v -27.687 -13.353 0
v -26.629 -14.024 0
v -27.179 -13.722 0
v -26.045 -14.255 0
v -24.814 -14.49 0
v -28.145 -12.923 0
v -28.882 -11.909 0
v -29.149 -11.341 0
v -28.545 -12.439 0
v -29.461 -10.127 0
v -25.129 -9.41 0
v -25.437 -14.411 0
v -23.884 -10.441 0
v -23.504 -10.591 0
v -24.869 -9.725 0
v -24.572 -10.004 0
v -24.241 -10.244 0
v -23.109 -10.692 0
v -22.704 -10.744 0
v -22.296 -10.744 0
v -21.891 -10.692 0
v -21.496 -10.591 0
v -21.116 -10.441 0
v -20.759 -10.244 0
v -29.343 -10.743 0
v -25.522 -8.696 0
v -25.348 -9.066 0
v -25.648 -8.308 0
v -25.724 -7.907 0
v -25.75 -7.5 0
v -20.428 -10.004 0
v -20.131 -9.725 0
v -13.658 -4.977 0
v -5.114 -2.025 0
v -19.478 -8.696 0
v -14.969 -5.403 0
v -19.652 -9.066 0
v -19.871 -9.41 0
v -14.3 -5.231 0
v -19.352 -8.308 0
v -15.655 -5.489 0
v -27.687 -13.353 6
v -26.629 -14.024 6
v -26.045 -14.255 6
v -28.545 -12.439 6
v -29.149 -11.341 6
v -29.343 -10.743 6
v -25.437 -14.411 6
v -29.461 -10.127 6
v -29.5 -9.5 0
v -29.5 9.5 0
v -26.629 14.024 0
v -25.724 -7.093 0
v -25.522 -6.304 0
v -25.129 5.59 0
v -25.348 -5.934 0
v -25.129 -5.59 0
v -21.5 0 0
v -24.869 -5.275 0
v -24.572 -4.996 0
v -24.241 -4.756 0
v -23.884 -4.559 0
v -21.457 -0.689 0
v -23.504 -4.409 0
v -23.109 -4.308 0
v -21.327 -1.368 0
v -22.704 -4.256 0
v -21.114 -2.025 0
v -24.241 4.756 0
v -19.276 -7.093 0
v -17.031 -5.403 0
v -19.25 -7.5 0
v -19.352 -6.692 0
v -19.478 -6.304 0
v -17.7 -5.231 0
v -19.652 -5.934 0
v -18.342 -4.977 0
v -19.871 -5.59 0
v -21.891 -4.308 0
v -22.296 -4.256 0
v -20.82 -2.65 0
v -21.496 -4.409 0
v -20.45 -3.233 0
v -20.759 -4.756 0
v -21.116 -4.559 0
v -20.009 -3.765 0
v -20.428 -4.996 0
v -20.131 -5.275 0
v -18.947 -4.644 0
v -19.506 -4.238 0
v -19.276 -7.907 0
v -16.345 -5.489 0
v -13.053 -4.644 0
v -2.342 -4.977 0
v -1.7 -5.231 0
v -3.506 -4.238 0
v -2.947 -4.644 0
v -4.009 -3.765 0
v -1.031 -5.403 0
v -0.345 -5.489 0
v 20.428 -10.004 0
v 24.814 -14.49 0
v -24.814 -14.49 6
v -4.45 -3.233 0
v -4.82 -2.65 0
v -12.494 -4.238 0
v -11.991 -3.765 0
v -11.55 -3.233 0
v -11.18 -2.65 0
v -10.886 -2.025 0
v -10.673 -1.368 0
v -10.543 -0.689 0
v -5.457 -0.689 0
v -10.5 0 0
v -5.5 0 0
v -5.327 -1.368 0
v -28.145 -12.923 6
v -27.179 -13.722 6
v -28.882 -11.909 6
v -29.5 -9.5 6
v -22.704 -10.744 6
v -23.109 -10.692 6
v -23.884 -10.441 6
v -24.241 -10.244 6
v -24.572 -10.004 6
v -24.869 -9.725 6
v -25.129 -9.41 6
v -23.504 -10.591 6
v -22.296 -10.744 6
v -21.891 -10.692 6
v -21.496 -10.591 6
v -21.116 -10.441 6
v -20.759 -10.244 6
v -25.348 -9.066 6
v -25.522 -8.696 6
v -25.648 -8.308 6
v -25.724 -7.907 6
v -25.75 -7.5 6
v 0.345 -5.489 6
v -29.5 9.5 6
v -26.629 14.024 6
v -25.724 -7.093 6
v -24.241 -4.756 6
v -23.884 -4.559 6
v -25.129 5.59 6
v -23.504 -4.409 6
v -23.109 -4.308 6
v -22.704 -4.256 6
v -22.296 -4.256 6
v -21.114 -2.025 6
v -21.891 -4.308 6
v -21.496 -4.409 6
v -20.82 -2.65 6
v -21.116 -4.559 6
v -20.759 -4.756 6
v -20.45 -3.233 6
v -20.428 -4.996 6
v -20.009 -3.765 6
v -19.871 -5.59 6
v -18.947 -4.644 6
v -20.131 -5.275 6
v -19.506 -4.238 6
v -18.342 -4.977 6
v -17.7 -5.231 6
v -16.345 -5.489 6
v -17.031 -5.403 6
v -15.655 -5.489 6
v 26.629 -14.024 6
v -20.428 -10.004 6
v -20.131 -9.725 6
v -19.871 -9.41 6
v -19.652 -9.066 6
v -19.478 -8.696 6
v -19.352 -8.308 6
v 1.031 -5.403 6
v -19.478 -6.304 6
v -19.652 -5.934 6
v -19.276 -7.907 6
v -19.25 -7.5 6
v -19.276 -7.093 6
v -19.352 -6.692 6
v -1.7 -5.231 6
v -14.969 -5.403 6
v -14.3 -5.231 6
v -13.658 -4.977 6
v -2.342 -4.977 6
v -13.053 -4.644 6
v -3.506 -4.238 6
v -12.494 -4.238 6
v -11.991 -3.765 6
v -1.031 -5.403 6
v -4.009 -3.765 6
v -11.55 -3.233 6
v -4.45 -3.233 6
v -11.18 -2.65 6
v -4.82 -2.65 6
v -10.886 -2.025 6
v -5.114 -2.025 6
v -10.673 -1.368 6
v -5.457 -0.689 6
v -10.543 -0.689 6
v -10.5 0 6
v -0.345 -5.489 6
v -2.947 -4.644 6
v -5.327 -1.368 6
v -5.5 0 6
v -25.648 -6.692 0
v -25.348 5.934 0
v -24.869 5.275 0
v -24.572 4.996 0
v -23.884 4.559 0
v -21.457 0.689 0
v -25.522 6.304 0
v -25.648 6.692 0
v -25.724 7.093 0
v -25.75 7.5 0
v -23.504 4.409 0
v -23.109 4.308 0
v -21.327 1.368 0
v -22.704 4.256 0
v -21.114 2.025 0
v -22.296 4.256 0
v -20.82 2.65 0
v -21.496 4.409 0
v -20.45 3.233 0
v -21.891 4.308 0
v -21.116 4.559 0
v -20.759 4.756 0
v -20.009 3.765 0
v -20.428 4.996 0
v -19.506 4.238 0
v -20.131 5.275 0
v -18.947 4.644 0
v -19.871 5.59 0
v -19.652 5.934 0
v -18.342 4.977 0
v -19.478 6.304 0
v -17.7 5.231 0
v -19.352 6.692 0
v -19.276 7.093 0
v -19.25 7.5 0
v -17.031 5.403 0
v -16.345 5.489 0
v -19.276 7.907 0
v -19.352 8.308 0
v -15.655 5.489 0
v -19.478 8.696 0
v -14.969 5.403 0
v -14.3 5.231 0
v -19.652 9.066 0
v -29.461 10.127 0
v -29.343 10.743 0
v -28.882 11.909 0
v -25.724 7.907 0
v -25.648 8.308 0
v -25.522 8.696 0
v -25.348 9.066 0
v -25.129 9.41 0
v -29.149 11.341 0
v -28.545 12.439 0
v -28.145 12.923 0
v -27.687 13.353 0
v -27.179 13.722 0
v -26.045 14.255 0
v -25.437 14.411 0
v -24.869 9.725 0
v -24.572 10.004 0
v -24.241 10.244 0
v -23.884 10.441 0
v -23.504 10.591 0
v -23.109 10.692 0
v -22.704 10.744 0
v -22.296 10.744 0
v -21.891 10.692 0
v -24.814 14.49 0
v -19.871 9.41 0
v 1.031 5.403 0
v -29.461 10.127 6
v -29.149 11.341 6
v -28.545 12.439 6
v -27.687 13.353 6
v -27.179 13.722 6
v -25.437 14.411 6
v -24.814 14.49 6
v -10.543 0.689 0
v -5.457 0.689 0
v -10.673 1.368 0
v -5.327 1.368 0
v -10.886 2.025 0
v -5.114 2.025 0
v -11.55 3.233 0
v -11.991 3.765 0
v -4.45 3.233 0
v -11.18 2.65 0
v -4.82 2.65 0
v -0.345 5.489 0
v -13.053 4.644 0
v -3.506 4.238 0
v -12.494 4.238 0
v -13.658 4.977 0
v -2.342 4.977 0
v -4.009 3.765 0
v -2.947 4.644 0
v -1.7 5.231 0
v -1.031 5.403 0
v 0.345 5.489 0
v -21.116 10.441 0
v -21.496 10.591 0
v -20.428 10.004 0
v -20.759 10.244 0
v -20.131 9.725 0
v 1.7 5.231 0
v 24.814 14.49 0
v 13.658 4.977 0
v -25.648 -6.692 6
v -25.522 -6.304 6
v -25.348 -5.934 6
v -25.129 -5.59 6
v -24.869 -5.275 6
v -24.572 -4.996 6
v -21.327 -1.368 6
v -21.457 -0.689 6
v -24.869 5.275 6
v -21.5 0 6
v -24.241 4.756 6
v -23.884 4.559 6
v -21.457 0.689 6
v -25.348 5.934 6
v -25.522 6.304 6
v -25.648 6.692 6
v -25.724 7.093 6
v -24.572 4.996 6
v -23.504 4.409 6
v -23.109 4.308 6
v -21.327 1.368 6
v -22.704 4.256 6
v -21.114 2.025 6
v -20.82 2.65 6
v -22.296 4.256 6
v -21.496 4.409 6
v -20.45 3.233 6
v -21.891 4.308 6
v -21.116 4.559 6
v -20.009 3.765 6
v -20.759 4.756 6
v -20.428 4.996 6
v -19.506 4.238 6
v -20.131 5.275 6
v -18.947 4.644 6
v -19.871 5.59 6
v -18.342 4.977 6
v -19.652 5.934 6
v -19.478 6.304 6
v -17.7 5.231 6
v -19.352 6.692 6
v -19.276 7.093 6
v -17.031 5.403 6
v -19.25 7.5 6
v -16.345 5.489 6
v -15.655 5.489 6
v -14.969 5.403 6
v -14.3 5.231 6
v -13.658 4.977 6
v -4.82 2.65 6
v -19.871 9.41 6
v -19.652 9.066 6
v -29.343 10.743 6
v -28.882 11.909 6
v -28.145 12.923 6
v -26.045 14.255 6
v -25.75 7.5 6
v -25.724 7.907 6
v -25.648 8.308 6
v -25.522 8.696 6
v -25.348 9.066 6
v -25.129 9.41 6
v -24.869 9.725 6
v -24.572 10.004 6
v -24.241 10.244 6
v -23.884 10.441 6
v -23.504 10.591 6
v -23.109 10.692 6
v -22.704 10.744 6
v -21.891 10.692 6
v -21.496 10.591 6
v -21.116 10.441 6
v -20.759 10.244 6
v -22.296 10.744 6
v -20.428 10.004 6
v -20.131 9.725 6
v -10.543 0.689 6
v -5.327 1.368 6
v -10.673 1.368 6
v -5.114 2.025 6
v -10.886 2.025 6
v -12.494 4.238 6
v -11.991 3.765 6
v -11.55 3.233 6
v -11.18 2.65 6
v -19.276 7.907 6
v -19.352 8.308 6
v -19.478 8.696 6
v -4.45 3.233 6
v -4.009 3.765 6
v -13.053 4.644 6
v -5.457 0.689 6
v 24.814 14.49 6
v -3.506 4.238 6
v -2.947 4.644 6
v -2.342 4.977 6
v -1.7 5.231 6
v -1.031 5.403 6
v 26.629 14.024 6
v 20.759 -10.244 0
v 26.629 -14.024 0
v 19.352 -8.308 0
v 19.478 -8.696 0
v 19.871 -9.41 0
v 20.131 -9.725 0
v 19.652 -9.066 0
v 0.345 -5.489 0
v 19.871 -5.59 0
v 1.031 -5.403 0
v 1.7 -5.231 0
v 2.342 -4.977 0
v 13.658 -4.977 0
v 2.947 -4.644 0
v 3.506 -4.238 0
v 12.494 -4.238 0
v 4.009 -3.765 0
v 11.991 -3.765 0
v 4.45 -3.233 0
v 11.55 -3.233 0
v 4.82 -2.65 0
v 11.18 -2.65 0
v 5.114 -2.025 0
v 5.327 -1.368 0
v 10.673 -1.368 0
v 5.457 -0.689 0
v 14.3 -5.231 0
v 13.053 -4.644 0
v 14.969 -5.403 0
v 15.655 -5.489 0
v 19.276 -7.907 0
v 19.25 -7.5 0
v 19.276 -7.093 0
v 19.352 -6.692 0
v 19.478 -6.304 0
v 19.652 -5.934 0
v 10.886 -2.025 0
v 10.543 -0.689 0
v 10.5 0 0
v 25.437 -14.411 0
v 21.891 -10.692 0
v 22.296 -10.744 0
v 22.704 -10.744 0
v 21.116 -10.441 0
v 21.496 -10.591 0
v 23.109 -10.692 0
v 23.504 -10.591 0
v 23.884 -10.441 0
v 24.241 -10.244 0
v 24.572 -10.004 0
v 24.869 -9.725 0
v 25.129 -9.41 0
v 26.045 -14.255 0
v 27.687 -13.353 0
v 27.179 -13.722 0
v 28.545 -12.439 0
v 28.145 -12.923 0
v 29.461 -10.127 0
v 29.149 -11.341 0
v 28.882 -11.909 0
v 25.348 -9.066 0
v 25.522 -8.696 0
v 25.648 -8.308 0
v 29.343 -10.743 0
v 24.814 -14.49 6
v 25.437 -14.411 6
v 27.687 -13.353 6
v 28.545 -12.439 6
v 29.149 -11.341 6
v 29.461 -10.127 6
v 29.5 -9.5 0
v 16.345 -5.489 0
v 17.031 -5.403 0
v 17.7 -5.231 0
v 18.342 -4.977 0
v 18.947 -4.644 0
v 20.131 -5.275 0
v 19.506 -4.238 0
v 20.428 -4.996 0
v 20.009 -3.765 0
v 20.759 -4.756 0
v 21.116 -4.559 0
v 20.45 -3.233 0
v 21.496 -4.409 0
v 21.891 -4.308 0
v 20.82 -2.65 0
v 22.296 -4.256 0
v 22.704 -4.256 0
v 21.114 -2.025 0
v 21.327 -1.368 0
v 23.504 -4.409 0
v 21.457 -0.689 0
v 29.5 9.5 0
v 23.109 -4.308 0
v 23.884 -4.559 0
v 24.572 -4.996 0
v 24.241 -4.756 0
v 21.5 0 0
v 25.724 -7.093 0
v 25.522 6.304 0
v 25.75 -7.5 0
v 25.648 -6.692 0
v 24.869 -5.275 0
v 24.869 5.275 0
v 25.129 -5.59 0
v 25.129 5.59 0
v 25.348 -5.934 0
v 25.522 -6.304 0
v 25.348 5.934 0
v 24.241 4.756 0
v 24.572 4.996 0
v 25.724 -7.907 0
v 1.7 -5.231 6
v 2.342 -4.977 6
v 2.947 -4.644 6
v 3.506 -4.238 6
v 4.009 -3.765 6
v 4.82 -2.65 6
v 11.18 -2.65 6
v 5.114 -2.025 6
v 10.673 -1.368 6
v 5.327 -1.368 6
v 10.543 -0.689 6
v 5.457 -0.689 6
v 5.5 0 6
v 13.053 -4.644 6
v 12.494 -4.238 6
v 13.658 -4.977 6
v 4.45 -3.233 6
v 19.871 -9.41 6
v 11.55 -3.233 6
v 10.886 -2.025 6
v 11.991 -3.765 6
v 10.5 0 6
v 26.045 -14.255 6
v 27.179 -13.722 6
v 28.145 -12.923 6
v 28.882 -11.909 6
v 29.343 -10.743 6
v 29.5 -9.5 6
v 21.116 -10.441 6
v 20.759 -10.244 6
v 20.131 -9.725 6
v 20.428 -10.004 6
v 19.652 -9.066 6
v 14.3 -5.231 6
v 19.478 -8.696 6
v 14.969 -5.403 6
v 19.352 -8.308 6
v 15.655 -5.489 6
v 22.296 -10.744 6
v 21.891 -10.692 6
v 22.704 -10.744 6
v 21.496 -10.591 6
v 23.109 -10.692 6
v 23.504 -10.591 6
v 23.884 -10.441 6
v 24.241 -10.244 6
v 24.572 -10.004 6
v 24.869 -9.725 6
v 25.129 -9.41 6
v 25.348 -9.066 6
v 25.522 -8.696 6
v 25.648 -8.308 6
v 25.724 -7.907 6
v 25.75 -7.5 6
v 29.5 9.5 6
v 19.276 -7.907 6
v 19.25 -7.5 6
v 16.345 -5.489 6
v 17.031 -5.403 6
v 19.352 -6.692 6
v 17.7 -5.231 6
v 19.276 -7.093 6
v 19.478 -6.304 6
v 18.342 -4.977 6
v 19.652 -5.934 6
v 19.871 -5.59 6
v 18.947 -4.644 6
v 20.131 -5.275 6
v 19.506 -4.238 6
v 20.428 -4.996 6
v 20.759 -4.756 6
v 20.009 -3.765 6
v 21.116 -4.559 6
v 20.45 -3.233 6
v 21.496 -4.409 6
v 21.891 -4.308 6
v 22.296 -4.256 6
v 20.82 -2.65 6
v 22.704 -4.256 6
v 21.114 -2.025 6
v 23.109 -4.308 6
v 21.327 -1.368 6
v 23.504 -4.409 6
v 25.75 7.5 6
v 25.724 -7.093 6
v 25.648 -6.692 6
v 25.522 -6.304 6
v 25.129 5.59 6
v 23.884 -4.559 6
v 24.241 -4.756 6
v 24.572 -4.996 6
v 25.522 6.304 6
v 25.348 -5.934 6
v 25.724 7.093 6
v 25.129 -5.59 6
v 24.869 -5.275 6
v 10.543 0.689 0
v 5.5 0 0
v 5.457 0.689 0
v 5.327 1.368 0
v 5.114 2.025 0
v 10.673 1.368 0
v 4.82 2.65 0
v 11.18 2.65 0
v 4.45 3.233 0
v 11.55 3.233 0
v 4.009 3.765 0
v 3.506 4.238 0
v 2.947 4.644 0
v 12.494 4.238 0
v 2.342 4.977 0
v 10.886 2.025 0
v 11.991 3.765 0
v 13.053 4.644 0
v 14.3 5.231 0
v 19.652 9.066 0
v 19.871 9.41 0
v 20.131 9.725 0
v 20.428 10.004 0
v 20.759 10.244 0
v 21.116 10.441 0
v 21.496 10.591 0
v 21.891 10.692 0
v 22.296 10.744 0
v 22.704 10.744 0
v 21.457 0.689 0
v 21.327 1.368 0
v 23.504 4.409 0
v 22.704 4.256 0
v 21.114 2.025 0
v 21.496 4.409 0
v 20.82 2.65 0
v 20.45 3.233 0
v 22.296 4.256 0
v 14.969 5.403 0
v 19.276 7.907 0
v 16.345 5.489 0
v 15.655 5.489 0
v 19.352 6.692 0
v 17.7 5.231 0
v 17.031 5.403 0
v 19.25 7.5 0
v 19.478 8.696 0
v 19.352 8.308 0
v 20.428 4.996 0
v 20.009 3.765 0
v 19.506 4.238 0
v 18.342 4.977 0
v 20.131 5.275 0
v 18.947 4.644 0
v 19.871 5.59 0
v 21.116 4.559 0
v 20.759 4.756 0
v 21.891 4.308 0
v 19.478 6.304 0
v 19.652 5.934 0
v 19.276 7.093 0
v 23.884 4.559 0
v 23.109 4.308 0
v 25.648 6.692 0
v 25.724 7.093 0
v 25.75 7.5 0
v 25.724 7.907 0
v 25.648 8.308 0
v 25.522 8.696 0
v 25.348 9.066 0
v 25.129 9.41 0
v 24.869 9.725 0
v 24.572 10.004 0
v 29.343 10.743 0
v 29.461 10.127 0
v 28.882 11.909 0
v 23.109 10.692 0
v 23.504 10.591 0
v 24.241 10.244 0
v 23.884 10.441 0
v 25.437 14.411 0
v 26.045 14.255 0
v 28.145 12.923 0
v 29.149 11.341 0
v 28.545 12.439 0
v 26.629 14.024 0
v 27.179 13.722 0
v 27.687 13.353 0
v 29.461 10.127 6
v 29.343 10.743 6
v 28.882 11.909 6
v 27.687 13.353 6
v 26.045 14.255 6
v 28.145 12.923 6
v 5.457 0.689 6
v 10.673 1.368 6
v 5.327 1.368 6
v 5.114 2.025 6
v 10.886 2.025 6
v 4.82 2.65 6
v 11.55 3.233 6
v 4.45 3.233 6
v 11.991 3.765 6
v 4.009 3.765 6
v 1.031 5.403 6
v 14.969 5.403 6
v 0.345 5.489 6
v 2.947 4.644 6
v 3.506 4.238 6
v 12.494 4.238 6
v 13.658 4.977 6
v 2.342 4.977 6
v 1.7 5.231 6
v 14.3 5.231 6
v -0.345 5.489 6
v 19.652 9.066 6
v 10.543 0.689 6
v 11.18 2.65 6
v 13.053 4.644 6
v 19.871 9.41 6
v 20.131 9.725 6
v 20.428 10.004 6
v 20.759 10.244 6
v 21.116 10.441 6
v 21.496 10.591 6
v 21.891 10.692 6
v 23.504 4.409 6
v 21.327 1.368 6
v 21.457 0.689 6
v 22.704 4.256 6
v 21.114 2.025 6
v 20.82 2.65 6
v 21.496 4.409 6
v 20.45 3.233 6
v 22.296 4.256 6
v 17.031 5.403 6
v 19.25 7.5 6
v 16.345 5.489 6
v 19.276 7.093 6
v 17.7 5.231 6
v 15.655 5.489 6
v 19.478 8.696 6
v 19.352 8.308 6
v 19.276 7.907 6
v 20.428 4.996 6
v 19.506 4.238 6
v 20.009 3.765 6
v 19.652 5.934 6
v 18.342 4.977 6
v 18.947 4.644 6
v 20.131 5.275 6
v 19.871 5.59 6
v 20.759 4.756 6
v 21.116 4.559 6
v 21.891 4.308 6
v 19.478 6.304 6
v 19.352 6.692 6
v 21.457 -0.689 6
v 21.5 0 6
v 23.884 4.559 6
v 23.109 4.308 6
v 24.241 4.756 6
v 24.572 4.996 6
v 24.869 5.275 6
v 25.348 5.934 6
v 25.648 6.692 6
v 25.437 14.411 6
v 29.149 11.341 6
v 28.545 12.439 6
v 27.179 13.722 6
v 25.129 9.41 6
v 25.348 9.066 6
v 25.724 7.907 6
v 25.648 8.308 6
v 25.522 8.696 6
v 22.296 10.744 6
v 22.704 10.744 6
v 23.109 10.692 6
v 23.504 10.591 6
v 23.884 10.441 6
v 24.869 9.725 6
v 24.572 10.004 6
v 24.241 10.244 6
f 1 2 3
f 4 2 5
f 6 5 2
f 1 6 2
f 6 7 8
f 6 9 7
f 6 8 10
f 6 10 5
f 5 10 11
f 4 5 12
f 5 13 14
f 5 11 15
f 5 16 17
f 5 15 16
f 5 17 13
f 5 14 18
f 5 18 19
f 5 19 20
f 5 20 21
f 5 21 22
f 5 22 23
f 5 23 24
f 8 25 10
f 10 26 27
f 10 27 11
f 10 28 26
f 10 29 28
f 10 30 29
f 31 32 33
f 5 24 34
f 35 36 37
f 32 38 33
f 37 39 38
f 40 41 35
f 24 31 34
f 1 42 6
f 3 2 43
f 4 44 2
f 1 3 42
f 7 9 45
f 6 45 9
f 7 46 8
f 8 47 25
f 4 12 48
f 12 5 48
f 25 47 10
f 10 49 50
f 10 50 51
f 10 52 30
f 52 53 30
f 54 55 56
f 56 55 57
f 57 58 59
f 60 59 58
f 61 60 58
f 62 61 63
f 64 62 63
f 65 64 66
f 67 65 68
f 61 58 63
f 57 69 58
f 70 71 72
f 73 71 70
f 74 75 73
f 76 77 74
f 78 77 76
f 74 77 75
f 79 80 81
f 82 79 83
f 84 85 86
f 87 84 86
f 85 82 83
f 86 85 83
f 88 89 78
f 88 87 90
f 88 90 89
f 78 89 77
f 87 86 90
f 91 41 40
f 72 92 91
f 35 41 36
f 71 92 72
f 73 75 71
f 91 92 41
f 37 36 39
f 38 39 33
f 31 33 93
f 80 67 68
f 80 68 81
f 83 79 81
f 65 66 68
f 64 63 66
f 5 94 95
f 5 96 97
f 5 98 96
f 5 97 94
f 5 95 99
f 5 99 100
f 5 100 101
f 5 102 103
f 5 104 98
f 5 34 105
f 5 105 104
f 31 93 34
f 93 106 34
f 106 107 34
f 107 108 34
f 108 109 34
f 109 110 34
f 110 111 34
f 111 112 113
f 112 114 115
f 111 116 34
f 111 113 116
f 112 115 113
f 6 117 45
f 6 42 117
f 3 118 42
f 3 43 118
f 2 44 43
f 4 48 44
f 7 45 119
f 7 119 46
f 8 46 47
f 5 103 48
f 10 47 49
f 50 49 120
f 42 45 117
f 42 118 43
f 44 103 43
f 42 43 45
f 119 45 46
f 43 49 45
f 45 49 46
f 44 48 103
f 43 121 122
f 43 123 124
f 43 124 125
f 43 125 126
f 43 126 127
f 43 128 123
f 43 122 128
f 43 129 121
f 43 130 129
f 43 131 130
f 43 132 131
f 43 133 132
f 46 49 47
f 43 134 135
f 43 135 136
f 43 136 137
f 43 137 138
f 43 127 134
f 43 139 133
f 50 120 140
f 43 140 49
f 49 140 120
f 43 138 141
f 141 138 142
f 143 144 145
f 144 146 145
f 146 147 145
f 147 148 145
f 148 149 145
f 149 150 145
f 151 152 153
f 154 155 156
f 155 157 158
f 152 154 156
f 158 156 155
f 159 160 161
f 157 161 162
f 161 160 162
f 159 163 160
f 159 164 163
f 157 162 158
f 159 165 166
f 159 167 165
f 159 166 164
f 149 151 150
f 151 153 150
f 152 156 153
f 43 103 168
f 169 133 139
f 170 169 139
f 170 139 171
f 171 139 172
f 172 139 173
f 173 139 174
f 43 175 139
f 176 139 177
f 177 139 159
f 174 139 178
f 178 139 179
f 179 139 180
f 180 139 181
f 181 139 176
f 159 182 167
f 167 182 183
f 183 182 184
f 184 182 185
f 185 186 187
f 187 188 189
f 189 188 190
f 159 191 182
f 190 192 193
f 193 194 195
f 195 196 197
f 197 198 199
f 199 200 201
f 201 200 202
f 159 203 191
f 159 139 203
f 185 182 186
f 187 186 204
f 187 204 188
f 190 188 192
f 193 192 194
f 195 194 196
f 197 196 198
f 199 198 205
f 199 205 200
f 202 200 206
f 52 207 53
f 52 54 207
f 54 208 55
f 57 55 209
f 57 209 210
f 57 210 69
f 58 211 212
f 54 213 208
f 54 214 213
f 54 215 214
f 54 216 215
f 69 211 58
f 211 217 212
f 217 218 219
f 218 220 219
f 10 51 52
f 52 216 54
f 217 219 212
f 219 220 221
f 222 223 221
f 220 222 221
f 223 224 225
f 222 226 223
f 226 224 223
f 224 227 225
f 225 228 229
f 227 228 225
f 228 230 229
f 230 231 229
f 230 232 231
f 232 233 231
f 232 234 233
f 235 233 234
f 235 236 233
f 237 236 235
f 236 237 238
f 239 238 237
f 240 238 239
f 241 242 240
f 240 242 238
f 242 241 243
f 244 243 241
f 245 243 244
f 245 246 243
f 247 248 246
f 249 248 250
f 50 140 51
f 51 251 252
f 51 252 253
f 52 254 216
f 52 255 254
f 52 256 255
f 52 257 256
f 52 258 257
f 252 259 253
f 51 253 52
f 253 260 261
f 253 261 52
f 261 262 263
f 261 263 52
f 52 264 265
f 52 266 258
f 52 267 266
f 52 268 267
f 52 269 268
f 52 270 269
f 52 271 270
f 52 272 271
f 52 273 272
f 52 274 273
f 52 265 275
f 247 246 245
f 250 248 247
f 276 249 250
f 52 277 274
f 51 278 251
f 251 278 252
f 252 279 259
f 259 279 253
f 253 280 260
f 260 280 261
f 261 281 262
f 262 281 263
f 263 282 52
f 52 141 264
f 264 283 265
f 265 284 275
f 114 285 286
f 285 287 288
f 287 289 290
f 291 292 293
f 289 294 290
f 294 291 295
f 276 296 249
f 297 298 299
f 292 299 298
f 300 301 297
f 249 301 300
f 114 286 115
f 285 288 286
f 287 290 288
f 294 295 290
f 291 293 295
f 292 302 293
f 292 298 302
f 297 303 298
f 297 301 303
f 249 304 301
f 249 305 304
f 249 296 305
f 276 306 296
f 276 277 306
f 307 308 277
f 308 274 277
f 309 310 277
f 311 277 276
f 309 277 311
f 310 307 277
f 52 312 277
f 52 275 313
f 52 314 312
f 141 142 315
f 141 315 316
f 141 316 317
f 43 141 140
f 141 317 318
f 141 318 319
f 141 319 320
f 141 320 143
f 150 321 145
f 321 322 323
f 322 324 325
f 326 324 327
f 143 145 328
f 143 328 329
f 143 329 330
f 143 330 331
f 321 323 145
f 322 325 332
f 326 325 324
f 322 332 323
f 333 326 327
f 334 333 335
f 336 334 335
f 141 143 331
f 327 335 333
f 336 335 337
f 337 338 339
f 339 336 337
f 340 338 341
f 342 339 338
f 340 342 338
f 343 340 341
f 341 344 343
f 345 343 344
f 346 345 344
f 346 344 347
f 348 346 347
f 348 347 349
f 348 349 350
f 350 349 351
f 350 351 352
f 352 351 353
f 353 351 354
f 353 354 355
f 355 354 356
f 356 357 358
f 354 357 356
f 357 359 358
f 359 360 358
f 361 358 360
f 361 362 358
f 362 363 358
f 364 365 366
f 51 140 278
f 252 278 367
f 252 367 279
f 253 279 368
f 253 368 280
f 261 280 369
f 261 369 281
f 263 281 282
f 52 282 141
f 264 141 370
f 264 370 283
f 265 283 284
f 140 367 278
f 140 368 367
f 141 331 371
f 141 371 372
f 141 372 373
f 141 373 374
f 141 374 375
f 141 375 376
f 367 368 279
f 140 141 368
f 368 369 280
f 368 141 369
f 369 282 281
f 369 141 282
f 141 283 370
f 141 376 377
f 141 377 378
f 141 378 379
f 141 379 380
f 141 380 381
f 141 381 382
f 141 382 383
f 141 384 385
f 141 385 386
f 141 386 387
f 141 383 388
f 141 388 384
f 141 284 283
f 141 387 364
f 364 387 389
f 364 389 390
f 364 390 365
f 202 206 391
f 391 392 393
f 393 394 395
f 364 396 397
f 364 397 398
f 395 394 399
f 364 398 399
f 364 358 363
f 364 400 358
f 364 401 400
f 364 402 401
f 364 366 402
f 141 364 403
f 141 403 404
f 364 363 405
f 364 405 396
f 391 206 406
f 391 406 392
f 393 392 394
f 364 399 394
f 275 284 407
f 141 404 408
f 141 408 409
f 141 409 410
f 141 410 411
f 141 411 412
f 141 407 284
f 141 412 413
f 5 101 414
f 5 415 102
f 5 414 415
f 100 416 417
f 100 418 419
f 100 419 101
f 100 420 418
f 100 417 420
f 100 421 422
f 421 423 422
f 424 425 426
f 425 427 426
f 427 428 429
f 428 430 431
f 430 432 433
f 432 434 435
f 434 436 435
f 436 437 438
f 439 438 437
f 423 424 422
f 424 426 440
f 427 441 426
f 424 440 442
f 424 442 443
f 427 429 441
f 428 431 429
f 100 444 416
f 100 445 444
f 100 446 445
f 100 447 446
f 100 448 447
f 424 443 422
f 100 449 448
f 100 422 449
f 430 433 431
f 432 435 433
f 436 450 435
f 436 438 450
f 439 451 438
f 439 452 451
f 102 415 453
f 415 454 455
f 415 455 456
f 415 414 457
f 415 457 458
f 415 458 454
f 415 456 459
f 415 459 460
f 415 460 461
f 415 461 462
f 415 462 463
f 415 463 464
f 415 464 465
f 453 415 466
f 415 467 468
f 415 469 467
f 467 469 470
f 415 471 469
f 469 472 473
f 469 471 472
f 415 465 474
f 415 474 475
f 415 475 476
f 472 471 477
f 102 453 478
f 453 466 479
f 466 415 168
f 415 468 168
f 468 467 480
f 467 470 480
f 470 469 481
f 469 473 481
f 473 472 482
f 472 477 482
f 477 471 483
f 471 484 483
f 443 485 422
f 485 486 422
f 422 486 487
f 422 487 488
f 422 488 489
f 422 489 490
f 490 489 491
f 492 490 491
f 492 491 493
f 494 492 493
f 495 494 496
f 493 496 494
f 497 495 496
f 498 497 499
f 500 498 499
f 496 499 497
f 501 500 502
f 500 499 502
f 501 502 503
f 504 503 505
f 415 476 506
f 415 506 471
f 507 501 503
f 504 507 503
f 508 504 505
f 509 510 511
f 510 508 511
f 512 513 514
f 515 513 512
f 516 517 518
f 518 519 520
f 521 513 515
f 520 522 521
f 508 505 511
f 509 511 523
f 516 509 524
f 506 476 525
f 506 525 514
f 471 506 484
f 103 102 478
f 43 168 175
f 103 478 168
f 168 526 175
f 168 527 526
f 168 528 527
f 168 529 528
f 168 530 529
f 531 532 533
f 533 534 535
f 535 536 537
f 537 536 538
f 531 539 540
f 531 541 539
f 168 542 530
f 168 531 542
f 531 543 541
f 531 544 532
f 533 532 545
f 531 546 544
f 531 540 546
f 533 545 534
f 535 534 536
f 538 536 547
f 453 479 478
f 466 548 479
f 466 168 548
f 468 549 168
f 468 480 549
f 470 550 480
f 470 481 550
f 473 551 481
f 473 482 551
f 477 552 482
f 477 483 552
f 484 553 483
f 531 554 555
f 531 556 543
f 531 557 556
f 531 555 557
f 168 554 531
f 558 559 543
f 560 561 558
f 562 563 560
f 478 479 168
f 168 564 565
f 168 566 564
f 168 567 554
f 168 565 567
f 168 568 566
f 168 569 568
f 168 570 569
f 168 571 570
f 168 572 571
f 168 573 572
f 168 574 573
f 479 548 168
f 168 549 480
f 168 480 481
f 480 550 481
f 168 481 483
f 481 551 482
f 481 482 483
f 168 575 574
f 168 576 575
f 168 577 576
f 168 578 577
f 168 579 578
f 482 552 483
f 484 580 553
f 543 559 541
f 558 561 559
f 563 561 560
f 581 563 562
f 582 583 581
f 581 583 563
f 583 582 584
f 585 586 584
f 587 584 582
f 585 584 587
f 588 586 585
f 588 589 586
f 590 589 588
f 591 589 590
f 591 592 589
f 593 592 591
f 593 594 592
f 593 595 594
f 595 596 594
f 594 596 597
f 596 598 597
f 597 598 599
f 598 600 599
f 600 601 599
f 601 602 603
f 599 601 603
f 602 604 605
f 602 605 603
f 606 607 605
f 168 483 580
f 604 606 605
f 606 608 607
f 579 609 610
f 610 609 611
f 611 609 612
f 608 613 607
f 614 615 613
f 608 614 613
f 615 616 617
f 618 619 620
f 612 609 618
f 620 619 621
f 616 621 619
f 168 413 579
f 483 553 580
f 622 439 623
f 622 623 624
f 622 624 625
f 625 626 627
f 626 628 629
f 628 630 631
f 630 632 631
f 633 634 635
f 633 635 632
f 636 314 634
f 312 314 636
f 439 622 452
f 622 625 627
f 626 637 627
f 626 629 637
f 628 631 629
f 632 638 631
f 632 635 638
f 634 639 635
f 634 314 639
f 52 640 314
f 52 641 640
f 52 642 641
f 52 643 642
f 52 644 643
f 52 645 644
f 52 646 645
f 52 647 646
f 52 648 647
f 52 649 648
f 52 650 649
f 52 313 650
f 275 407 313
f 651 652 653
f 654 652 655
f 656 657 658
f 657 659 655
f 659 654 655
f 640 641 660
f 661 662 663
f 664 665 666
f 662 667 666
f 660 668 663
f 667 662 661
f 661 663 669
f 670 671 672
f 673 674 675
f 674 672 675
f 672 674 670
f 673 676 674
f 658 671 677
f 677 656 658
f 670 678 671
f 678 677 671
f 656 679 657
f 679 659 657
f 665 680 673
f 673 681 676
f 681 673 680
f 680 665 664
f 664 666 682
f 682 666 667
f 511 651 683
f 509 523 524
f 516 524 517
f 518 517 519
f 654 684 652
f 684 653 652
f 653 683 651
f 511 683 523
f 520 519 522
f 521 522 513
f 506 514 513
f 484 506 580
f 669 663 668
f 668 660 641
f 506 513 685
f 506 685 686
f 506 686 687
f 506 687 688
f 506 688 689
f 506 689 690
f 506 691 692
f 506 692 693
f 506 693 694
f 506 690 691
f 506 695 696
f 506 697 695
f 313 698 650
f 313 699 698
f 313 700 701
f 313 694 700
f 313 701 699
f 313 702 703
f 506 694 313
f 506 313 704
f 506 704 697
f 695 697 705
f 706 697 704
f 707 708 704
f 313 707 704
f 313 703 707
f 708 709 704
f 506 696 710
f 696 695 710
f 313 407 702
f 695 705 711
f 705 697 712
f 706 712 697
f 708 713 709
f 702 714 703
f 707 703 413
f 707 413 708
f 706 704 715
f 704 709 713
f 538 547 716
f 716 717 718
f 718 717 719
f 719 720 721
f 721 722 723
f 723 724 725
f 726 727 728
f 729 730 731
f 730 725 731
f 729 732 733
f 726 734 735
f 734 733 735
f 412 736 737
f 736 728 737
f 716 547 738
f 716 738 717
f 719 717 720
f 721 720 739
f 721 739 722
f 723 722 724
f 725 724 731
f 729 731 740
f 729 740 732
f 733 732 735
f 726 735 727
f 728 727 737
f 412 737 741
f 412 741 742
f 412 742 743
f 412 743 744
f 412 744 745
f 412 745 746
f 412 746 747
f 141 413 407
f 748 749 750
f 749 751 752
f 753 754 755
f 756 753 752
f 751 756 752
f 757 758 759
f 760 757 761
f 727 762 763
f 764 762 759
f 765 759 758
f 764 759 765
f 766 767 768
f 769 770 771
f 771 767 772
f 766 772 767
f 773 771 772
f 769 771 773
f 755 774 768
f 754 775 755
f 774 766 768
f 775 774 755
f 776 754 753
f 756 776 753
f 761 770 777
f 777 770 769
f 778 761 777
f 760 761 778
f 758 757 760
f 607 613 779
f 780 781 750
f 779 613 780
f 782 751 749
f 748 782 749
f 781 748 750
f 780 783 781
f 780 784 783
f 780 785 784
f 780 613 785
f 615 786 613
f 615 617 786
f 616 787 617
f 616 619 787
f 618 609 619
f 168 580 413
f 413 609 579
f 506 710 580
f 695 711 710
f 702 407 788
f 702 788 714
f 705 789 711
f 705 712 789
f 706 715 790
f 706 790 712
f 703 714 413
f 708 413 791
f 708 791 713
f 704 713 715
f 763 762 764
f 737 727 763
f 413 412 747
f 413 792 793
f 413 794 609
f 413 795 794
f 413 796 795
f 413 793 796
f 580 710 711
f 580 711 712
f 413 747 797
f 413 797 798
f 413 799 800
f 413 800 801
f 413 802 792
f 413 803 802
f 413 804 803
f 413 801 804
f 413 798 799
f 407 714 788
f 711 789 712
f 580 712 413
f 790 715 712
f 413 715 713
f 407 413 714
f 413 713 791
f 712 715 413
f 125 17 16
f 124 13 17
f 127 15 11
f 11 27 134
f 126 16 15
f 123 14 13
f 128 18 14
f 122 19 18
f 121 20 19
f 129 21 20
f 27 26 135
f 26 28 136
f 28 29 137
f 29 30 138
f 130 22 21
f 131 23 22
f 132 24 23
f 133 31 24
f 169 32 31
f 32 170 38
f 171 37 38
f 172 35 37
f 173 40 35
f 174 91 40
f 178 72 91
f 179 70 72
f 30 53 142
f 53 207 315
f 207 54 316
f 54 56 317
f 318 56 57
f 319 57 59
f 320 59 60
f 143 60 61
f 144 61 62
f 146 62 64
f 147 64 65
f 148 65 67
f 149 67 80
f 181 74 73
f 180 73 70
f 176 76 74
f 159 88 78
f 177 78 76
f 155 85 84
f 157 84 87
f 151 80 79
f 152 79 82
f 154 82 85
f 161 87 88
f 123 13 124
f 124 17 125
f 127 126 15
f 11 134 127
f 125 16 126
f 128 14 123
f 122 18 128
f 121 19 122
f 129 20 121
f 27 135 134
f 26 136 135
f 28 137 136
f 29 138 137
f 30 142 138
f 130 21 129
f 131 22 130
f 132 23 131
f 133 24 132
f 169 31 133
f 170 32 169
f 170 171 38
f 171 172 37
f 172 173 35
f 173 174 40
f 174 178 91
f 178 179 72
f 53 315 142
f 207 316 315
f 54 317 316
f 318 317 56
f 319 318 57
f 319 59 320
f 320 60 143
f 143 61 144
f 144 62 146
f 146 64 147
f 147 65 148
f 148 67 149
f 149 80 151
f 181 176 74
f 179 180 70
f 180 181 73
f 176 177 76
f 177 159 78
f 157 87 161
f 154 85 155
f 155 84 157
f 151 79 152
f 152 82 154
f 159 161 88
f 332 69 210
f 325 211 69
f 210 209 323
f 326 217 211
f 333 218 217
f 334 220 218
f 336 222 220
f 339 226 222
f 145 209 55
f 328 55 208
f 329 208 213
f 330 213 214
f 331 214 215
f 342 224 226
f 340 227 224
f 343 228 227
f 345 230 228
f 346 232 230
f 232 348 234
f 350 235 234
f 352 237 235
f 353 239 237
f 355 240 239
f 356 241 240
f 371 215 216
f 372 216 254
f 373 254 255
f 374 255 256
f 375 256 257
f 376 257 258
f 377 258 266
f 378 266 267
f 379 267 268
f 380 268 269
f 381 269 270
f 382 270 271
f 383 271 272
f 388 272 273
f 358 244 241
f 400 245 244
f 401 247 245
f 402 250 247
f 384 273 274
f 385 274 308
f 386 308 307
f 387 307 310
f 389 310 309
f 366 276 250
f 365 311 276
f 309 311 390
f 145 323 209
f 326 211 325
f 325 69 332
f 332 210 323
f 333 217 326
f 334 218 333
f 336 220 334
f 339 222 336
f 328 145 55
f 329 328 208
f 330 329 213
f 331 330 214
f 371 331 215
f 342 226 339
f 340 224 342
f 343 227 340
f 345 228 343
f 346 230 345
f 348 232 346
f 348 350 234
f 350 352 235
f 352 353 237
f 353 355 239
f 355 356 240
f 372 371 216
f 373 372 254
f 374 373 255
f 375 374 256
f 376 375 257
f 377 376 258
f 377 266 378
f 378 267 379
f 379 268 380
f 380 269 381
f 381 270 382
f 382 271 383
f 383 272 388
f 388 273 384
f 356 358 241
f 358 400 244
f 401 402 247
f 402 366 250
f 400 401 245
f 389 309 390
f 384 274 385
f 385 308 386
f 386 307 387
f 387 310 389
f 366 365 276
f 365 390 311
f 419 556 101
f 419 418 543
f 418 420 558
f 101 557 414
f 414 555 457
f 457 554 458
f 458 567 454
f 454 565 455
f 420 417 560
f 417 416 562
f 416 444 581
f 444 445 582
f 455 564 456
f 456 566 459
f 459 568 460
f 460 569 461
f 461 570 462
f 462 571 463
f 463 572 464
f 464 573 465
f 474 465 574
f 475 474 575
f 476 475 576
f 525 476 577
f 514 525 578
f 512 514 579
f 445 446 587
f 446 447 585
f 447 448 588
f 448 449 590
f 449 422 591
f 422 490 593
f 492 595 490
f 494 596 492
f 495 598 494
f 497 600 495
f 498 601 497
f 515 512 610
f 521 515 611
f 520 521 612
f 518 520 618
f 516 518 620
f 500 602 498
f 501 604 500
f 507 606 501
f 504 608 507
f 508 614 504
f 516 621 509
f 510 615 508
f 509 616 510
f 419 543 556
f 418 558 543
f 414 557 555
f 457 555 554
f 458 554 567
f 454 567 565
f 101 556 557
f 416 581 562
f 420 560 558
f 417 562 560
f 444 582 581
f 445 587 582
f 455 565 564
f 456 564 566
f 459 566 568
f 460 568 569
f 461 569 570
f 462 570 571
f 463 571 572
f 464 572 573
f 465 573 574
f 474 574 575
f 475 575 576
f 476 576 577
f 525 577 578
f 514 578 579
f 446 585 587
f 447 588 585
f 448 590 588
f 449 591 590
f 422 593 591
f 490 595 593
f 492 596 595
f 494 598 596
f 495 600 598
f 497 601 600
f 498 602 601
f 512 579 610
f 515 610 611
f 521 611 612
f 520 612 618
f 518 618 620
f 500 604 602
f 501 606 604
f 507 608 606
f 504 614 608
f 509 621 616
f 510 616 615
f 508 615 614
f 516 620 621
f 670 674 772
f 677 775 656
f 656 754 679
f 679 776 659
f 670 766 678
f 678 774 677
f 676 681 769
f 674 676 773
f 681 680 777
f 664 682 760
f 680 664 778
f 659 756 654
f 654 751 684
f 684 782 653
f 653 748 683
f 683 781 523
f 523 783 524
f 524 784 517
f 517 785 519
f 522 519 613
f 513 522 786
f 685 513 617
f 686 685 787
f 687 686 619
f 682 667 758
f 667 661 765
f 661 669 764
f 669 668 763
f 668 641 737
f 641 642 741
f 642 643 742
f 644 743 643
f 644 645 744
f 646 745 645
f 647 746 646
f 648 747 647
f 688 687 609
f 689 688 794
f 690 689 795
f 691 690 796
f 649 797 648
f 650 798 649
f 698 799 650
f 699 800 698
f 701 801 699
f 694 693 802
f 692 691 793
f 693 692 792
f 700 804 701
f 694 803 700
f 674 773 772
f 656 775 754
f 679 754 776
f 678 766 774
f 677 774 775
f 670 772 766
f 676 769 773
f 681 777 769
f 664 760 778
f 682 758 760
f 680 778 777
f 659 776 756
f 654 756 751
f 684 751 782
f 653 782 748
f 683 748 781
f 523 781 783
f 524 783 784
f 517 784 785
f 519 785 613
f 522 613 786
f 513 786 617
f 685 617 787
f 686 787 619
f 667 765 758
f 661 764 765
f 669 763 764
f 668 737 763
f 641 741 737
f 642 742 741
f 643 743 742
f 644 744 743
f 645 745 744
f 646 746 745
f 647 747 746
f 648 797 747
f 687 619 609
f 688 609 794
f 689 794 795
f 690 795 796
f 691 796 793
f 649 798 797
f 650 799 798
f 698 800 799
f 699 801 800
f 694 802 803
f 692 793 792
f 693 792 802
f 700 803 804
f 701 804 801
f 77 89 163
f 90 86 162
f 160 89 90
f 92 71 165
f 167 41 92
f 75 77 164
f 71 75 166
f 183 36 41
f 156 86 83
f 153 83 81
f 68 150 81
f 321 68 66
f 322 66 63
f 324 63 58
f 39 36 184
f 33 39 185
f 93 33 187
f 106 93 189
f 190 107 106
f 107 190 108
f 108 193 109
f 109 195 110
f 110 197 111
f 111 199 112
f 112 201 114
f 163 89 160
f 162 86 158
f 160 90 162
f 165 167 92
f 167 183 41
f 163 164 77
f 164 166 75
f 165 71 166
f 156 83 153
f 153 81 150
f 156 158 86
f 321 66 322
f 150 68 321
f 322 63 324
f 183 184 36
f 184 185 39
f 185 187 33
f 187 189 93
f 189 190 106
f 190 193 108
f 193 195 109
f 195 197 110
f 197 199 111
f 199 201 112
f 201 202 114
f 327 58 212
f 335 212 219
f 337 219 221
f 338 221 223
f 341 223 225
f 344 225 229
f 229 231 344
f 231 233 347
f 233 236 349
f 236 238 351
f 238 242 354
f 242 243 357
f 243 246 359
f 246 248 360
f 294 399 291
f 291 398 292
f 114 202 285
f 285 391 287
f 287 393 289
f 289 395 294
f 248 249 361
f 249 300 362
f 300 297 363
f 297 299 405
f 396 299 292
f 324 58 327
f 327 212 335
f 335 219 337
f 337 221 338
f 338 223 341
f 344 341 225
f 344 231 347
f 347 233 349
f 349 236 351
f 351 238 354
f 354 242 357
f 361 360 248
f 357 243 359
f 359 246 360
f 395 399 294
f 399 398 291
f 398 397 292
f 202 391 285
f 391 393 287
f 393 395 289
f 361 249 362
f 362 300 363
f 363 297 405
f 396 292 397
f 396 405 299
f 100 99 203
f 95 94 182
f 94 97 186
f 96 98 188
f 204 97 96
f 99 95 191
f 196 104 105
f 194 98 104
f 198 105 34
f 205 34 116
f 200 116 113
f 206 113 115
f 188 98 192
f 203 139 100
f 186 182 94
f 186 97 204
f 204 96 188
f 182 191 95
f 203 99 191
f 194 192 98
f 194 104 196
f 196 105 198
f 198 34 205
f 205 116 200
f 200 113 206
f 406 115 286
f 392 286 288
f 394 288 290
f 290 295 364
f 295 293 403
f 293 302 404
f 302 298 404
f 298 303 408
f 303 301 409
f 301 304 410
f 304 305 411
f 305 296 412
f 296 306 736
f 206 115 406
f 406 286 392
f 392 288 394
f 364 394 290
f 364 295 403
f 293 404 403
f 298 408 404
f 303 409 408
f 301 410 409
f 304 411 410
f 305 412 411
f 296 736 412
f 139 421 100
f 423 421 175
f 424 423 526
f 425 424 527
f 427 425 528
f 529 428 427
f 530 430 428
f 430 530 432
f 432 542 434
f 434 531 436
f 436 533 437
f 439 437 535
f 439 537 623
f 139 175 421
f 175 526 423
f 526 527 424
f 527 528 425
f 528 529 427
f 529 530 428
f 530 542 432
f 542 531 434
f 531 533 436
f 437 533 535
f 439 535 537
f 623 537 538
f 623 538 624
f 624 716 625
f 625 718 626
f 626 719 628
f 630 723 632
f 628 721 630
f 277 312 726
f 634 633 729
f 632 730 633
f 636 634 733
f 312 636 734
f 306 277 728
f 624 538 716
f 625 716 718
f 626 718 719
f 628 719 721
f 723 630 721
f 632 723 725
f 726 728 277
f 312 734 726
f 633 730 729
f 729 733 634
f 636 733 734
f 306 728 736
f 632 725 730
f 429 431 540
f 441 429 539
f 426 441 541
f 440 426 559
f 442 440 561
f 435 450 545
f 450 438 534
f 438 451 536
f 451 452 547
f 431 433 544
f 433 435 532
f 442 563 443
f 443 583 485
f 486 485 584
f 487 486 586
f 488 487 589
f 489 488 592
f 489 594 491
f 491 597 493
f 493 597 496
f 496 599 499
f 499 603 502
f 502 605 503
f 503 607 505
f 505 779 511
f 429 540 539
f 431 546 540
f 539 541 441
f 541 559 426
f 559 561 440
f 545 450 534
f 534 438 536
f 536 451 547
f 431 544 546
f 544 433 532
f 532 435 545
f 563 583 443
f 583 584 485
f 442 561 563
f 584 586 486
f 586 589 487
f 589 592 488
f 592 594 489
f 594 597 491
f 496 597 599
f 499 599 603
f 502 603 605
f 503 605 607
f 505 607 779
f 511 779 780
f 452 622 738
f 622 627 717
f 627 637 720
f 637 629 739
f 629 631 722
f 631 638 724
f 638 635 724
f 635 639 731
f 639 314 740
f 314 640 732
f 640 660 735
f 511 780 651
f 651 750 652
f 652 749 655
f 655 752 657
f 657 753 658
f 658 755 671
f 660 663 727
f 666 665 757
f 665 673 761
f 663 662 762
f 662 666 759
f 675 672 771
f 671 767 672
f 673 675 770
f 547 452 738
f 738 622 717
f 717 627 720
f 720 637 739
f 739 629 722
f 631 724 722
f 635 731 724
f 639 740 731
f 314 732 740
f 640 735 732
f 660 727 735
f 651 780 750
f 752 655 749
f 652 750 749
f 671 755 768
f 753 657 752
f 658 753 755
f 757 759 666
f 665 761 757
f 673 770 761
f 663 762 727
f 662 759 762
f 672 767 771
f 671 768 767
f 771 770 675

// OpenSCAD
$fn = 50;

difference() {
	union() {
		hull() {
			translate(v = [-24.5, 9.5, 0]) {
				cylinder(h = 6, r = 5);
			}
			translate(v = [24.5, 9.5, 0]) {
				cylinder(h = 6, r = 5);
			}
			translate(v = [-24.5, -9.5, 0]) {
				cylinder(h = 6, r = 5);
			}
			translate(v = [24.5, -9.5, 0]) {
				cylinder(h = 6, r = 5);
			}
		}
	}
	union() {
		translate(v = [-22.5, -7.5, -100.0]) {
			cylinder(h = 200, r = 3.25);
		}
		translate(v = [-22.5, 7.5, -100.0]) {
			cylinder(h = 200, r = 3.25);
		}
		translate(v = [22.5, -7.5, -100.0]) {
			cylinder(h = 200, r = 3.25);
		}
		translate(v = [22.5, 7.5, -100.0]) {
			cylinder(h = 200, r = 3.25);
		}
		translate(v = [-22.5, -7.5, -100.0]) {
			cylinder(h = 200, r = 1.8);
		}
		translate(v = [-22.5, 7.5, -100.0]) {
			cylinder(h = 200, r = 1.8);
		}
		translate(v = [22.5, -7.5, -100.0]) {
			cylinder(h = 200, r = 1.8);
		}
		translate(v = [22.5, 7.5, -100.0]) {
			cylinder(h = 200, r = 1.8);
		}
		translate(v = [-16.0, 0, 0.0]) {
			cylinder(h = 6, r = 5.5);
		}
		cylinder(h = 6, r = 5.5);
		translate(v = [16.0, 0, 0.0]) {
			cylinder(h = 6, r = 5.5);
		}
	}
}
